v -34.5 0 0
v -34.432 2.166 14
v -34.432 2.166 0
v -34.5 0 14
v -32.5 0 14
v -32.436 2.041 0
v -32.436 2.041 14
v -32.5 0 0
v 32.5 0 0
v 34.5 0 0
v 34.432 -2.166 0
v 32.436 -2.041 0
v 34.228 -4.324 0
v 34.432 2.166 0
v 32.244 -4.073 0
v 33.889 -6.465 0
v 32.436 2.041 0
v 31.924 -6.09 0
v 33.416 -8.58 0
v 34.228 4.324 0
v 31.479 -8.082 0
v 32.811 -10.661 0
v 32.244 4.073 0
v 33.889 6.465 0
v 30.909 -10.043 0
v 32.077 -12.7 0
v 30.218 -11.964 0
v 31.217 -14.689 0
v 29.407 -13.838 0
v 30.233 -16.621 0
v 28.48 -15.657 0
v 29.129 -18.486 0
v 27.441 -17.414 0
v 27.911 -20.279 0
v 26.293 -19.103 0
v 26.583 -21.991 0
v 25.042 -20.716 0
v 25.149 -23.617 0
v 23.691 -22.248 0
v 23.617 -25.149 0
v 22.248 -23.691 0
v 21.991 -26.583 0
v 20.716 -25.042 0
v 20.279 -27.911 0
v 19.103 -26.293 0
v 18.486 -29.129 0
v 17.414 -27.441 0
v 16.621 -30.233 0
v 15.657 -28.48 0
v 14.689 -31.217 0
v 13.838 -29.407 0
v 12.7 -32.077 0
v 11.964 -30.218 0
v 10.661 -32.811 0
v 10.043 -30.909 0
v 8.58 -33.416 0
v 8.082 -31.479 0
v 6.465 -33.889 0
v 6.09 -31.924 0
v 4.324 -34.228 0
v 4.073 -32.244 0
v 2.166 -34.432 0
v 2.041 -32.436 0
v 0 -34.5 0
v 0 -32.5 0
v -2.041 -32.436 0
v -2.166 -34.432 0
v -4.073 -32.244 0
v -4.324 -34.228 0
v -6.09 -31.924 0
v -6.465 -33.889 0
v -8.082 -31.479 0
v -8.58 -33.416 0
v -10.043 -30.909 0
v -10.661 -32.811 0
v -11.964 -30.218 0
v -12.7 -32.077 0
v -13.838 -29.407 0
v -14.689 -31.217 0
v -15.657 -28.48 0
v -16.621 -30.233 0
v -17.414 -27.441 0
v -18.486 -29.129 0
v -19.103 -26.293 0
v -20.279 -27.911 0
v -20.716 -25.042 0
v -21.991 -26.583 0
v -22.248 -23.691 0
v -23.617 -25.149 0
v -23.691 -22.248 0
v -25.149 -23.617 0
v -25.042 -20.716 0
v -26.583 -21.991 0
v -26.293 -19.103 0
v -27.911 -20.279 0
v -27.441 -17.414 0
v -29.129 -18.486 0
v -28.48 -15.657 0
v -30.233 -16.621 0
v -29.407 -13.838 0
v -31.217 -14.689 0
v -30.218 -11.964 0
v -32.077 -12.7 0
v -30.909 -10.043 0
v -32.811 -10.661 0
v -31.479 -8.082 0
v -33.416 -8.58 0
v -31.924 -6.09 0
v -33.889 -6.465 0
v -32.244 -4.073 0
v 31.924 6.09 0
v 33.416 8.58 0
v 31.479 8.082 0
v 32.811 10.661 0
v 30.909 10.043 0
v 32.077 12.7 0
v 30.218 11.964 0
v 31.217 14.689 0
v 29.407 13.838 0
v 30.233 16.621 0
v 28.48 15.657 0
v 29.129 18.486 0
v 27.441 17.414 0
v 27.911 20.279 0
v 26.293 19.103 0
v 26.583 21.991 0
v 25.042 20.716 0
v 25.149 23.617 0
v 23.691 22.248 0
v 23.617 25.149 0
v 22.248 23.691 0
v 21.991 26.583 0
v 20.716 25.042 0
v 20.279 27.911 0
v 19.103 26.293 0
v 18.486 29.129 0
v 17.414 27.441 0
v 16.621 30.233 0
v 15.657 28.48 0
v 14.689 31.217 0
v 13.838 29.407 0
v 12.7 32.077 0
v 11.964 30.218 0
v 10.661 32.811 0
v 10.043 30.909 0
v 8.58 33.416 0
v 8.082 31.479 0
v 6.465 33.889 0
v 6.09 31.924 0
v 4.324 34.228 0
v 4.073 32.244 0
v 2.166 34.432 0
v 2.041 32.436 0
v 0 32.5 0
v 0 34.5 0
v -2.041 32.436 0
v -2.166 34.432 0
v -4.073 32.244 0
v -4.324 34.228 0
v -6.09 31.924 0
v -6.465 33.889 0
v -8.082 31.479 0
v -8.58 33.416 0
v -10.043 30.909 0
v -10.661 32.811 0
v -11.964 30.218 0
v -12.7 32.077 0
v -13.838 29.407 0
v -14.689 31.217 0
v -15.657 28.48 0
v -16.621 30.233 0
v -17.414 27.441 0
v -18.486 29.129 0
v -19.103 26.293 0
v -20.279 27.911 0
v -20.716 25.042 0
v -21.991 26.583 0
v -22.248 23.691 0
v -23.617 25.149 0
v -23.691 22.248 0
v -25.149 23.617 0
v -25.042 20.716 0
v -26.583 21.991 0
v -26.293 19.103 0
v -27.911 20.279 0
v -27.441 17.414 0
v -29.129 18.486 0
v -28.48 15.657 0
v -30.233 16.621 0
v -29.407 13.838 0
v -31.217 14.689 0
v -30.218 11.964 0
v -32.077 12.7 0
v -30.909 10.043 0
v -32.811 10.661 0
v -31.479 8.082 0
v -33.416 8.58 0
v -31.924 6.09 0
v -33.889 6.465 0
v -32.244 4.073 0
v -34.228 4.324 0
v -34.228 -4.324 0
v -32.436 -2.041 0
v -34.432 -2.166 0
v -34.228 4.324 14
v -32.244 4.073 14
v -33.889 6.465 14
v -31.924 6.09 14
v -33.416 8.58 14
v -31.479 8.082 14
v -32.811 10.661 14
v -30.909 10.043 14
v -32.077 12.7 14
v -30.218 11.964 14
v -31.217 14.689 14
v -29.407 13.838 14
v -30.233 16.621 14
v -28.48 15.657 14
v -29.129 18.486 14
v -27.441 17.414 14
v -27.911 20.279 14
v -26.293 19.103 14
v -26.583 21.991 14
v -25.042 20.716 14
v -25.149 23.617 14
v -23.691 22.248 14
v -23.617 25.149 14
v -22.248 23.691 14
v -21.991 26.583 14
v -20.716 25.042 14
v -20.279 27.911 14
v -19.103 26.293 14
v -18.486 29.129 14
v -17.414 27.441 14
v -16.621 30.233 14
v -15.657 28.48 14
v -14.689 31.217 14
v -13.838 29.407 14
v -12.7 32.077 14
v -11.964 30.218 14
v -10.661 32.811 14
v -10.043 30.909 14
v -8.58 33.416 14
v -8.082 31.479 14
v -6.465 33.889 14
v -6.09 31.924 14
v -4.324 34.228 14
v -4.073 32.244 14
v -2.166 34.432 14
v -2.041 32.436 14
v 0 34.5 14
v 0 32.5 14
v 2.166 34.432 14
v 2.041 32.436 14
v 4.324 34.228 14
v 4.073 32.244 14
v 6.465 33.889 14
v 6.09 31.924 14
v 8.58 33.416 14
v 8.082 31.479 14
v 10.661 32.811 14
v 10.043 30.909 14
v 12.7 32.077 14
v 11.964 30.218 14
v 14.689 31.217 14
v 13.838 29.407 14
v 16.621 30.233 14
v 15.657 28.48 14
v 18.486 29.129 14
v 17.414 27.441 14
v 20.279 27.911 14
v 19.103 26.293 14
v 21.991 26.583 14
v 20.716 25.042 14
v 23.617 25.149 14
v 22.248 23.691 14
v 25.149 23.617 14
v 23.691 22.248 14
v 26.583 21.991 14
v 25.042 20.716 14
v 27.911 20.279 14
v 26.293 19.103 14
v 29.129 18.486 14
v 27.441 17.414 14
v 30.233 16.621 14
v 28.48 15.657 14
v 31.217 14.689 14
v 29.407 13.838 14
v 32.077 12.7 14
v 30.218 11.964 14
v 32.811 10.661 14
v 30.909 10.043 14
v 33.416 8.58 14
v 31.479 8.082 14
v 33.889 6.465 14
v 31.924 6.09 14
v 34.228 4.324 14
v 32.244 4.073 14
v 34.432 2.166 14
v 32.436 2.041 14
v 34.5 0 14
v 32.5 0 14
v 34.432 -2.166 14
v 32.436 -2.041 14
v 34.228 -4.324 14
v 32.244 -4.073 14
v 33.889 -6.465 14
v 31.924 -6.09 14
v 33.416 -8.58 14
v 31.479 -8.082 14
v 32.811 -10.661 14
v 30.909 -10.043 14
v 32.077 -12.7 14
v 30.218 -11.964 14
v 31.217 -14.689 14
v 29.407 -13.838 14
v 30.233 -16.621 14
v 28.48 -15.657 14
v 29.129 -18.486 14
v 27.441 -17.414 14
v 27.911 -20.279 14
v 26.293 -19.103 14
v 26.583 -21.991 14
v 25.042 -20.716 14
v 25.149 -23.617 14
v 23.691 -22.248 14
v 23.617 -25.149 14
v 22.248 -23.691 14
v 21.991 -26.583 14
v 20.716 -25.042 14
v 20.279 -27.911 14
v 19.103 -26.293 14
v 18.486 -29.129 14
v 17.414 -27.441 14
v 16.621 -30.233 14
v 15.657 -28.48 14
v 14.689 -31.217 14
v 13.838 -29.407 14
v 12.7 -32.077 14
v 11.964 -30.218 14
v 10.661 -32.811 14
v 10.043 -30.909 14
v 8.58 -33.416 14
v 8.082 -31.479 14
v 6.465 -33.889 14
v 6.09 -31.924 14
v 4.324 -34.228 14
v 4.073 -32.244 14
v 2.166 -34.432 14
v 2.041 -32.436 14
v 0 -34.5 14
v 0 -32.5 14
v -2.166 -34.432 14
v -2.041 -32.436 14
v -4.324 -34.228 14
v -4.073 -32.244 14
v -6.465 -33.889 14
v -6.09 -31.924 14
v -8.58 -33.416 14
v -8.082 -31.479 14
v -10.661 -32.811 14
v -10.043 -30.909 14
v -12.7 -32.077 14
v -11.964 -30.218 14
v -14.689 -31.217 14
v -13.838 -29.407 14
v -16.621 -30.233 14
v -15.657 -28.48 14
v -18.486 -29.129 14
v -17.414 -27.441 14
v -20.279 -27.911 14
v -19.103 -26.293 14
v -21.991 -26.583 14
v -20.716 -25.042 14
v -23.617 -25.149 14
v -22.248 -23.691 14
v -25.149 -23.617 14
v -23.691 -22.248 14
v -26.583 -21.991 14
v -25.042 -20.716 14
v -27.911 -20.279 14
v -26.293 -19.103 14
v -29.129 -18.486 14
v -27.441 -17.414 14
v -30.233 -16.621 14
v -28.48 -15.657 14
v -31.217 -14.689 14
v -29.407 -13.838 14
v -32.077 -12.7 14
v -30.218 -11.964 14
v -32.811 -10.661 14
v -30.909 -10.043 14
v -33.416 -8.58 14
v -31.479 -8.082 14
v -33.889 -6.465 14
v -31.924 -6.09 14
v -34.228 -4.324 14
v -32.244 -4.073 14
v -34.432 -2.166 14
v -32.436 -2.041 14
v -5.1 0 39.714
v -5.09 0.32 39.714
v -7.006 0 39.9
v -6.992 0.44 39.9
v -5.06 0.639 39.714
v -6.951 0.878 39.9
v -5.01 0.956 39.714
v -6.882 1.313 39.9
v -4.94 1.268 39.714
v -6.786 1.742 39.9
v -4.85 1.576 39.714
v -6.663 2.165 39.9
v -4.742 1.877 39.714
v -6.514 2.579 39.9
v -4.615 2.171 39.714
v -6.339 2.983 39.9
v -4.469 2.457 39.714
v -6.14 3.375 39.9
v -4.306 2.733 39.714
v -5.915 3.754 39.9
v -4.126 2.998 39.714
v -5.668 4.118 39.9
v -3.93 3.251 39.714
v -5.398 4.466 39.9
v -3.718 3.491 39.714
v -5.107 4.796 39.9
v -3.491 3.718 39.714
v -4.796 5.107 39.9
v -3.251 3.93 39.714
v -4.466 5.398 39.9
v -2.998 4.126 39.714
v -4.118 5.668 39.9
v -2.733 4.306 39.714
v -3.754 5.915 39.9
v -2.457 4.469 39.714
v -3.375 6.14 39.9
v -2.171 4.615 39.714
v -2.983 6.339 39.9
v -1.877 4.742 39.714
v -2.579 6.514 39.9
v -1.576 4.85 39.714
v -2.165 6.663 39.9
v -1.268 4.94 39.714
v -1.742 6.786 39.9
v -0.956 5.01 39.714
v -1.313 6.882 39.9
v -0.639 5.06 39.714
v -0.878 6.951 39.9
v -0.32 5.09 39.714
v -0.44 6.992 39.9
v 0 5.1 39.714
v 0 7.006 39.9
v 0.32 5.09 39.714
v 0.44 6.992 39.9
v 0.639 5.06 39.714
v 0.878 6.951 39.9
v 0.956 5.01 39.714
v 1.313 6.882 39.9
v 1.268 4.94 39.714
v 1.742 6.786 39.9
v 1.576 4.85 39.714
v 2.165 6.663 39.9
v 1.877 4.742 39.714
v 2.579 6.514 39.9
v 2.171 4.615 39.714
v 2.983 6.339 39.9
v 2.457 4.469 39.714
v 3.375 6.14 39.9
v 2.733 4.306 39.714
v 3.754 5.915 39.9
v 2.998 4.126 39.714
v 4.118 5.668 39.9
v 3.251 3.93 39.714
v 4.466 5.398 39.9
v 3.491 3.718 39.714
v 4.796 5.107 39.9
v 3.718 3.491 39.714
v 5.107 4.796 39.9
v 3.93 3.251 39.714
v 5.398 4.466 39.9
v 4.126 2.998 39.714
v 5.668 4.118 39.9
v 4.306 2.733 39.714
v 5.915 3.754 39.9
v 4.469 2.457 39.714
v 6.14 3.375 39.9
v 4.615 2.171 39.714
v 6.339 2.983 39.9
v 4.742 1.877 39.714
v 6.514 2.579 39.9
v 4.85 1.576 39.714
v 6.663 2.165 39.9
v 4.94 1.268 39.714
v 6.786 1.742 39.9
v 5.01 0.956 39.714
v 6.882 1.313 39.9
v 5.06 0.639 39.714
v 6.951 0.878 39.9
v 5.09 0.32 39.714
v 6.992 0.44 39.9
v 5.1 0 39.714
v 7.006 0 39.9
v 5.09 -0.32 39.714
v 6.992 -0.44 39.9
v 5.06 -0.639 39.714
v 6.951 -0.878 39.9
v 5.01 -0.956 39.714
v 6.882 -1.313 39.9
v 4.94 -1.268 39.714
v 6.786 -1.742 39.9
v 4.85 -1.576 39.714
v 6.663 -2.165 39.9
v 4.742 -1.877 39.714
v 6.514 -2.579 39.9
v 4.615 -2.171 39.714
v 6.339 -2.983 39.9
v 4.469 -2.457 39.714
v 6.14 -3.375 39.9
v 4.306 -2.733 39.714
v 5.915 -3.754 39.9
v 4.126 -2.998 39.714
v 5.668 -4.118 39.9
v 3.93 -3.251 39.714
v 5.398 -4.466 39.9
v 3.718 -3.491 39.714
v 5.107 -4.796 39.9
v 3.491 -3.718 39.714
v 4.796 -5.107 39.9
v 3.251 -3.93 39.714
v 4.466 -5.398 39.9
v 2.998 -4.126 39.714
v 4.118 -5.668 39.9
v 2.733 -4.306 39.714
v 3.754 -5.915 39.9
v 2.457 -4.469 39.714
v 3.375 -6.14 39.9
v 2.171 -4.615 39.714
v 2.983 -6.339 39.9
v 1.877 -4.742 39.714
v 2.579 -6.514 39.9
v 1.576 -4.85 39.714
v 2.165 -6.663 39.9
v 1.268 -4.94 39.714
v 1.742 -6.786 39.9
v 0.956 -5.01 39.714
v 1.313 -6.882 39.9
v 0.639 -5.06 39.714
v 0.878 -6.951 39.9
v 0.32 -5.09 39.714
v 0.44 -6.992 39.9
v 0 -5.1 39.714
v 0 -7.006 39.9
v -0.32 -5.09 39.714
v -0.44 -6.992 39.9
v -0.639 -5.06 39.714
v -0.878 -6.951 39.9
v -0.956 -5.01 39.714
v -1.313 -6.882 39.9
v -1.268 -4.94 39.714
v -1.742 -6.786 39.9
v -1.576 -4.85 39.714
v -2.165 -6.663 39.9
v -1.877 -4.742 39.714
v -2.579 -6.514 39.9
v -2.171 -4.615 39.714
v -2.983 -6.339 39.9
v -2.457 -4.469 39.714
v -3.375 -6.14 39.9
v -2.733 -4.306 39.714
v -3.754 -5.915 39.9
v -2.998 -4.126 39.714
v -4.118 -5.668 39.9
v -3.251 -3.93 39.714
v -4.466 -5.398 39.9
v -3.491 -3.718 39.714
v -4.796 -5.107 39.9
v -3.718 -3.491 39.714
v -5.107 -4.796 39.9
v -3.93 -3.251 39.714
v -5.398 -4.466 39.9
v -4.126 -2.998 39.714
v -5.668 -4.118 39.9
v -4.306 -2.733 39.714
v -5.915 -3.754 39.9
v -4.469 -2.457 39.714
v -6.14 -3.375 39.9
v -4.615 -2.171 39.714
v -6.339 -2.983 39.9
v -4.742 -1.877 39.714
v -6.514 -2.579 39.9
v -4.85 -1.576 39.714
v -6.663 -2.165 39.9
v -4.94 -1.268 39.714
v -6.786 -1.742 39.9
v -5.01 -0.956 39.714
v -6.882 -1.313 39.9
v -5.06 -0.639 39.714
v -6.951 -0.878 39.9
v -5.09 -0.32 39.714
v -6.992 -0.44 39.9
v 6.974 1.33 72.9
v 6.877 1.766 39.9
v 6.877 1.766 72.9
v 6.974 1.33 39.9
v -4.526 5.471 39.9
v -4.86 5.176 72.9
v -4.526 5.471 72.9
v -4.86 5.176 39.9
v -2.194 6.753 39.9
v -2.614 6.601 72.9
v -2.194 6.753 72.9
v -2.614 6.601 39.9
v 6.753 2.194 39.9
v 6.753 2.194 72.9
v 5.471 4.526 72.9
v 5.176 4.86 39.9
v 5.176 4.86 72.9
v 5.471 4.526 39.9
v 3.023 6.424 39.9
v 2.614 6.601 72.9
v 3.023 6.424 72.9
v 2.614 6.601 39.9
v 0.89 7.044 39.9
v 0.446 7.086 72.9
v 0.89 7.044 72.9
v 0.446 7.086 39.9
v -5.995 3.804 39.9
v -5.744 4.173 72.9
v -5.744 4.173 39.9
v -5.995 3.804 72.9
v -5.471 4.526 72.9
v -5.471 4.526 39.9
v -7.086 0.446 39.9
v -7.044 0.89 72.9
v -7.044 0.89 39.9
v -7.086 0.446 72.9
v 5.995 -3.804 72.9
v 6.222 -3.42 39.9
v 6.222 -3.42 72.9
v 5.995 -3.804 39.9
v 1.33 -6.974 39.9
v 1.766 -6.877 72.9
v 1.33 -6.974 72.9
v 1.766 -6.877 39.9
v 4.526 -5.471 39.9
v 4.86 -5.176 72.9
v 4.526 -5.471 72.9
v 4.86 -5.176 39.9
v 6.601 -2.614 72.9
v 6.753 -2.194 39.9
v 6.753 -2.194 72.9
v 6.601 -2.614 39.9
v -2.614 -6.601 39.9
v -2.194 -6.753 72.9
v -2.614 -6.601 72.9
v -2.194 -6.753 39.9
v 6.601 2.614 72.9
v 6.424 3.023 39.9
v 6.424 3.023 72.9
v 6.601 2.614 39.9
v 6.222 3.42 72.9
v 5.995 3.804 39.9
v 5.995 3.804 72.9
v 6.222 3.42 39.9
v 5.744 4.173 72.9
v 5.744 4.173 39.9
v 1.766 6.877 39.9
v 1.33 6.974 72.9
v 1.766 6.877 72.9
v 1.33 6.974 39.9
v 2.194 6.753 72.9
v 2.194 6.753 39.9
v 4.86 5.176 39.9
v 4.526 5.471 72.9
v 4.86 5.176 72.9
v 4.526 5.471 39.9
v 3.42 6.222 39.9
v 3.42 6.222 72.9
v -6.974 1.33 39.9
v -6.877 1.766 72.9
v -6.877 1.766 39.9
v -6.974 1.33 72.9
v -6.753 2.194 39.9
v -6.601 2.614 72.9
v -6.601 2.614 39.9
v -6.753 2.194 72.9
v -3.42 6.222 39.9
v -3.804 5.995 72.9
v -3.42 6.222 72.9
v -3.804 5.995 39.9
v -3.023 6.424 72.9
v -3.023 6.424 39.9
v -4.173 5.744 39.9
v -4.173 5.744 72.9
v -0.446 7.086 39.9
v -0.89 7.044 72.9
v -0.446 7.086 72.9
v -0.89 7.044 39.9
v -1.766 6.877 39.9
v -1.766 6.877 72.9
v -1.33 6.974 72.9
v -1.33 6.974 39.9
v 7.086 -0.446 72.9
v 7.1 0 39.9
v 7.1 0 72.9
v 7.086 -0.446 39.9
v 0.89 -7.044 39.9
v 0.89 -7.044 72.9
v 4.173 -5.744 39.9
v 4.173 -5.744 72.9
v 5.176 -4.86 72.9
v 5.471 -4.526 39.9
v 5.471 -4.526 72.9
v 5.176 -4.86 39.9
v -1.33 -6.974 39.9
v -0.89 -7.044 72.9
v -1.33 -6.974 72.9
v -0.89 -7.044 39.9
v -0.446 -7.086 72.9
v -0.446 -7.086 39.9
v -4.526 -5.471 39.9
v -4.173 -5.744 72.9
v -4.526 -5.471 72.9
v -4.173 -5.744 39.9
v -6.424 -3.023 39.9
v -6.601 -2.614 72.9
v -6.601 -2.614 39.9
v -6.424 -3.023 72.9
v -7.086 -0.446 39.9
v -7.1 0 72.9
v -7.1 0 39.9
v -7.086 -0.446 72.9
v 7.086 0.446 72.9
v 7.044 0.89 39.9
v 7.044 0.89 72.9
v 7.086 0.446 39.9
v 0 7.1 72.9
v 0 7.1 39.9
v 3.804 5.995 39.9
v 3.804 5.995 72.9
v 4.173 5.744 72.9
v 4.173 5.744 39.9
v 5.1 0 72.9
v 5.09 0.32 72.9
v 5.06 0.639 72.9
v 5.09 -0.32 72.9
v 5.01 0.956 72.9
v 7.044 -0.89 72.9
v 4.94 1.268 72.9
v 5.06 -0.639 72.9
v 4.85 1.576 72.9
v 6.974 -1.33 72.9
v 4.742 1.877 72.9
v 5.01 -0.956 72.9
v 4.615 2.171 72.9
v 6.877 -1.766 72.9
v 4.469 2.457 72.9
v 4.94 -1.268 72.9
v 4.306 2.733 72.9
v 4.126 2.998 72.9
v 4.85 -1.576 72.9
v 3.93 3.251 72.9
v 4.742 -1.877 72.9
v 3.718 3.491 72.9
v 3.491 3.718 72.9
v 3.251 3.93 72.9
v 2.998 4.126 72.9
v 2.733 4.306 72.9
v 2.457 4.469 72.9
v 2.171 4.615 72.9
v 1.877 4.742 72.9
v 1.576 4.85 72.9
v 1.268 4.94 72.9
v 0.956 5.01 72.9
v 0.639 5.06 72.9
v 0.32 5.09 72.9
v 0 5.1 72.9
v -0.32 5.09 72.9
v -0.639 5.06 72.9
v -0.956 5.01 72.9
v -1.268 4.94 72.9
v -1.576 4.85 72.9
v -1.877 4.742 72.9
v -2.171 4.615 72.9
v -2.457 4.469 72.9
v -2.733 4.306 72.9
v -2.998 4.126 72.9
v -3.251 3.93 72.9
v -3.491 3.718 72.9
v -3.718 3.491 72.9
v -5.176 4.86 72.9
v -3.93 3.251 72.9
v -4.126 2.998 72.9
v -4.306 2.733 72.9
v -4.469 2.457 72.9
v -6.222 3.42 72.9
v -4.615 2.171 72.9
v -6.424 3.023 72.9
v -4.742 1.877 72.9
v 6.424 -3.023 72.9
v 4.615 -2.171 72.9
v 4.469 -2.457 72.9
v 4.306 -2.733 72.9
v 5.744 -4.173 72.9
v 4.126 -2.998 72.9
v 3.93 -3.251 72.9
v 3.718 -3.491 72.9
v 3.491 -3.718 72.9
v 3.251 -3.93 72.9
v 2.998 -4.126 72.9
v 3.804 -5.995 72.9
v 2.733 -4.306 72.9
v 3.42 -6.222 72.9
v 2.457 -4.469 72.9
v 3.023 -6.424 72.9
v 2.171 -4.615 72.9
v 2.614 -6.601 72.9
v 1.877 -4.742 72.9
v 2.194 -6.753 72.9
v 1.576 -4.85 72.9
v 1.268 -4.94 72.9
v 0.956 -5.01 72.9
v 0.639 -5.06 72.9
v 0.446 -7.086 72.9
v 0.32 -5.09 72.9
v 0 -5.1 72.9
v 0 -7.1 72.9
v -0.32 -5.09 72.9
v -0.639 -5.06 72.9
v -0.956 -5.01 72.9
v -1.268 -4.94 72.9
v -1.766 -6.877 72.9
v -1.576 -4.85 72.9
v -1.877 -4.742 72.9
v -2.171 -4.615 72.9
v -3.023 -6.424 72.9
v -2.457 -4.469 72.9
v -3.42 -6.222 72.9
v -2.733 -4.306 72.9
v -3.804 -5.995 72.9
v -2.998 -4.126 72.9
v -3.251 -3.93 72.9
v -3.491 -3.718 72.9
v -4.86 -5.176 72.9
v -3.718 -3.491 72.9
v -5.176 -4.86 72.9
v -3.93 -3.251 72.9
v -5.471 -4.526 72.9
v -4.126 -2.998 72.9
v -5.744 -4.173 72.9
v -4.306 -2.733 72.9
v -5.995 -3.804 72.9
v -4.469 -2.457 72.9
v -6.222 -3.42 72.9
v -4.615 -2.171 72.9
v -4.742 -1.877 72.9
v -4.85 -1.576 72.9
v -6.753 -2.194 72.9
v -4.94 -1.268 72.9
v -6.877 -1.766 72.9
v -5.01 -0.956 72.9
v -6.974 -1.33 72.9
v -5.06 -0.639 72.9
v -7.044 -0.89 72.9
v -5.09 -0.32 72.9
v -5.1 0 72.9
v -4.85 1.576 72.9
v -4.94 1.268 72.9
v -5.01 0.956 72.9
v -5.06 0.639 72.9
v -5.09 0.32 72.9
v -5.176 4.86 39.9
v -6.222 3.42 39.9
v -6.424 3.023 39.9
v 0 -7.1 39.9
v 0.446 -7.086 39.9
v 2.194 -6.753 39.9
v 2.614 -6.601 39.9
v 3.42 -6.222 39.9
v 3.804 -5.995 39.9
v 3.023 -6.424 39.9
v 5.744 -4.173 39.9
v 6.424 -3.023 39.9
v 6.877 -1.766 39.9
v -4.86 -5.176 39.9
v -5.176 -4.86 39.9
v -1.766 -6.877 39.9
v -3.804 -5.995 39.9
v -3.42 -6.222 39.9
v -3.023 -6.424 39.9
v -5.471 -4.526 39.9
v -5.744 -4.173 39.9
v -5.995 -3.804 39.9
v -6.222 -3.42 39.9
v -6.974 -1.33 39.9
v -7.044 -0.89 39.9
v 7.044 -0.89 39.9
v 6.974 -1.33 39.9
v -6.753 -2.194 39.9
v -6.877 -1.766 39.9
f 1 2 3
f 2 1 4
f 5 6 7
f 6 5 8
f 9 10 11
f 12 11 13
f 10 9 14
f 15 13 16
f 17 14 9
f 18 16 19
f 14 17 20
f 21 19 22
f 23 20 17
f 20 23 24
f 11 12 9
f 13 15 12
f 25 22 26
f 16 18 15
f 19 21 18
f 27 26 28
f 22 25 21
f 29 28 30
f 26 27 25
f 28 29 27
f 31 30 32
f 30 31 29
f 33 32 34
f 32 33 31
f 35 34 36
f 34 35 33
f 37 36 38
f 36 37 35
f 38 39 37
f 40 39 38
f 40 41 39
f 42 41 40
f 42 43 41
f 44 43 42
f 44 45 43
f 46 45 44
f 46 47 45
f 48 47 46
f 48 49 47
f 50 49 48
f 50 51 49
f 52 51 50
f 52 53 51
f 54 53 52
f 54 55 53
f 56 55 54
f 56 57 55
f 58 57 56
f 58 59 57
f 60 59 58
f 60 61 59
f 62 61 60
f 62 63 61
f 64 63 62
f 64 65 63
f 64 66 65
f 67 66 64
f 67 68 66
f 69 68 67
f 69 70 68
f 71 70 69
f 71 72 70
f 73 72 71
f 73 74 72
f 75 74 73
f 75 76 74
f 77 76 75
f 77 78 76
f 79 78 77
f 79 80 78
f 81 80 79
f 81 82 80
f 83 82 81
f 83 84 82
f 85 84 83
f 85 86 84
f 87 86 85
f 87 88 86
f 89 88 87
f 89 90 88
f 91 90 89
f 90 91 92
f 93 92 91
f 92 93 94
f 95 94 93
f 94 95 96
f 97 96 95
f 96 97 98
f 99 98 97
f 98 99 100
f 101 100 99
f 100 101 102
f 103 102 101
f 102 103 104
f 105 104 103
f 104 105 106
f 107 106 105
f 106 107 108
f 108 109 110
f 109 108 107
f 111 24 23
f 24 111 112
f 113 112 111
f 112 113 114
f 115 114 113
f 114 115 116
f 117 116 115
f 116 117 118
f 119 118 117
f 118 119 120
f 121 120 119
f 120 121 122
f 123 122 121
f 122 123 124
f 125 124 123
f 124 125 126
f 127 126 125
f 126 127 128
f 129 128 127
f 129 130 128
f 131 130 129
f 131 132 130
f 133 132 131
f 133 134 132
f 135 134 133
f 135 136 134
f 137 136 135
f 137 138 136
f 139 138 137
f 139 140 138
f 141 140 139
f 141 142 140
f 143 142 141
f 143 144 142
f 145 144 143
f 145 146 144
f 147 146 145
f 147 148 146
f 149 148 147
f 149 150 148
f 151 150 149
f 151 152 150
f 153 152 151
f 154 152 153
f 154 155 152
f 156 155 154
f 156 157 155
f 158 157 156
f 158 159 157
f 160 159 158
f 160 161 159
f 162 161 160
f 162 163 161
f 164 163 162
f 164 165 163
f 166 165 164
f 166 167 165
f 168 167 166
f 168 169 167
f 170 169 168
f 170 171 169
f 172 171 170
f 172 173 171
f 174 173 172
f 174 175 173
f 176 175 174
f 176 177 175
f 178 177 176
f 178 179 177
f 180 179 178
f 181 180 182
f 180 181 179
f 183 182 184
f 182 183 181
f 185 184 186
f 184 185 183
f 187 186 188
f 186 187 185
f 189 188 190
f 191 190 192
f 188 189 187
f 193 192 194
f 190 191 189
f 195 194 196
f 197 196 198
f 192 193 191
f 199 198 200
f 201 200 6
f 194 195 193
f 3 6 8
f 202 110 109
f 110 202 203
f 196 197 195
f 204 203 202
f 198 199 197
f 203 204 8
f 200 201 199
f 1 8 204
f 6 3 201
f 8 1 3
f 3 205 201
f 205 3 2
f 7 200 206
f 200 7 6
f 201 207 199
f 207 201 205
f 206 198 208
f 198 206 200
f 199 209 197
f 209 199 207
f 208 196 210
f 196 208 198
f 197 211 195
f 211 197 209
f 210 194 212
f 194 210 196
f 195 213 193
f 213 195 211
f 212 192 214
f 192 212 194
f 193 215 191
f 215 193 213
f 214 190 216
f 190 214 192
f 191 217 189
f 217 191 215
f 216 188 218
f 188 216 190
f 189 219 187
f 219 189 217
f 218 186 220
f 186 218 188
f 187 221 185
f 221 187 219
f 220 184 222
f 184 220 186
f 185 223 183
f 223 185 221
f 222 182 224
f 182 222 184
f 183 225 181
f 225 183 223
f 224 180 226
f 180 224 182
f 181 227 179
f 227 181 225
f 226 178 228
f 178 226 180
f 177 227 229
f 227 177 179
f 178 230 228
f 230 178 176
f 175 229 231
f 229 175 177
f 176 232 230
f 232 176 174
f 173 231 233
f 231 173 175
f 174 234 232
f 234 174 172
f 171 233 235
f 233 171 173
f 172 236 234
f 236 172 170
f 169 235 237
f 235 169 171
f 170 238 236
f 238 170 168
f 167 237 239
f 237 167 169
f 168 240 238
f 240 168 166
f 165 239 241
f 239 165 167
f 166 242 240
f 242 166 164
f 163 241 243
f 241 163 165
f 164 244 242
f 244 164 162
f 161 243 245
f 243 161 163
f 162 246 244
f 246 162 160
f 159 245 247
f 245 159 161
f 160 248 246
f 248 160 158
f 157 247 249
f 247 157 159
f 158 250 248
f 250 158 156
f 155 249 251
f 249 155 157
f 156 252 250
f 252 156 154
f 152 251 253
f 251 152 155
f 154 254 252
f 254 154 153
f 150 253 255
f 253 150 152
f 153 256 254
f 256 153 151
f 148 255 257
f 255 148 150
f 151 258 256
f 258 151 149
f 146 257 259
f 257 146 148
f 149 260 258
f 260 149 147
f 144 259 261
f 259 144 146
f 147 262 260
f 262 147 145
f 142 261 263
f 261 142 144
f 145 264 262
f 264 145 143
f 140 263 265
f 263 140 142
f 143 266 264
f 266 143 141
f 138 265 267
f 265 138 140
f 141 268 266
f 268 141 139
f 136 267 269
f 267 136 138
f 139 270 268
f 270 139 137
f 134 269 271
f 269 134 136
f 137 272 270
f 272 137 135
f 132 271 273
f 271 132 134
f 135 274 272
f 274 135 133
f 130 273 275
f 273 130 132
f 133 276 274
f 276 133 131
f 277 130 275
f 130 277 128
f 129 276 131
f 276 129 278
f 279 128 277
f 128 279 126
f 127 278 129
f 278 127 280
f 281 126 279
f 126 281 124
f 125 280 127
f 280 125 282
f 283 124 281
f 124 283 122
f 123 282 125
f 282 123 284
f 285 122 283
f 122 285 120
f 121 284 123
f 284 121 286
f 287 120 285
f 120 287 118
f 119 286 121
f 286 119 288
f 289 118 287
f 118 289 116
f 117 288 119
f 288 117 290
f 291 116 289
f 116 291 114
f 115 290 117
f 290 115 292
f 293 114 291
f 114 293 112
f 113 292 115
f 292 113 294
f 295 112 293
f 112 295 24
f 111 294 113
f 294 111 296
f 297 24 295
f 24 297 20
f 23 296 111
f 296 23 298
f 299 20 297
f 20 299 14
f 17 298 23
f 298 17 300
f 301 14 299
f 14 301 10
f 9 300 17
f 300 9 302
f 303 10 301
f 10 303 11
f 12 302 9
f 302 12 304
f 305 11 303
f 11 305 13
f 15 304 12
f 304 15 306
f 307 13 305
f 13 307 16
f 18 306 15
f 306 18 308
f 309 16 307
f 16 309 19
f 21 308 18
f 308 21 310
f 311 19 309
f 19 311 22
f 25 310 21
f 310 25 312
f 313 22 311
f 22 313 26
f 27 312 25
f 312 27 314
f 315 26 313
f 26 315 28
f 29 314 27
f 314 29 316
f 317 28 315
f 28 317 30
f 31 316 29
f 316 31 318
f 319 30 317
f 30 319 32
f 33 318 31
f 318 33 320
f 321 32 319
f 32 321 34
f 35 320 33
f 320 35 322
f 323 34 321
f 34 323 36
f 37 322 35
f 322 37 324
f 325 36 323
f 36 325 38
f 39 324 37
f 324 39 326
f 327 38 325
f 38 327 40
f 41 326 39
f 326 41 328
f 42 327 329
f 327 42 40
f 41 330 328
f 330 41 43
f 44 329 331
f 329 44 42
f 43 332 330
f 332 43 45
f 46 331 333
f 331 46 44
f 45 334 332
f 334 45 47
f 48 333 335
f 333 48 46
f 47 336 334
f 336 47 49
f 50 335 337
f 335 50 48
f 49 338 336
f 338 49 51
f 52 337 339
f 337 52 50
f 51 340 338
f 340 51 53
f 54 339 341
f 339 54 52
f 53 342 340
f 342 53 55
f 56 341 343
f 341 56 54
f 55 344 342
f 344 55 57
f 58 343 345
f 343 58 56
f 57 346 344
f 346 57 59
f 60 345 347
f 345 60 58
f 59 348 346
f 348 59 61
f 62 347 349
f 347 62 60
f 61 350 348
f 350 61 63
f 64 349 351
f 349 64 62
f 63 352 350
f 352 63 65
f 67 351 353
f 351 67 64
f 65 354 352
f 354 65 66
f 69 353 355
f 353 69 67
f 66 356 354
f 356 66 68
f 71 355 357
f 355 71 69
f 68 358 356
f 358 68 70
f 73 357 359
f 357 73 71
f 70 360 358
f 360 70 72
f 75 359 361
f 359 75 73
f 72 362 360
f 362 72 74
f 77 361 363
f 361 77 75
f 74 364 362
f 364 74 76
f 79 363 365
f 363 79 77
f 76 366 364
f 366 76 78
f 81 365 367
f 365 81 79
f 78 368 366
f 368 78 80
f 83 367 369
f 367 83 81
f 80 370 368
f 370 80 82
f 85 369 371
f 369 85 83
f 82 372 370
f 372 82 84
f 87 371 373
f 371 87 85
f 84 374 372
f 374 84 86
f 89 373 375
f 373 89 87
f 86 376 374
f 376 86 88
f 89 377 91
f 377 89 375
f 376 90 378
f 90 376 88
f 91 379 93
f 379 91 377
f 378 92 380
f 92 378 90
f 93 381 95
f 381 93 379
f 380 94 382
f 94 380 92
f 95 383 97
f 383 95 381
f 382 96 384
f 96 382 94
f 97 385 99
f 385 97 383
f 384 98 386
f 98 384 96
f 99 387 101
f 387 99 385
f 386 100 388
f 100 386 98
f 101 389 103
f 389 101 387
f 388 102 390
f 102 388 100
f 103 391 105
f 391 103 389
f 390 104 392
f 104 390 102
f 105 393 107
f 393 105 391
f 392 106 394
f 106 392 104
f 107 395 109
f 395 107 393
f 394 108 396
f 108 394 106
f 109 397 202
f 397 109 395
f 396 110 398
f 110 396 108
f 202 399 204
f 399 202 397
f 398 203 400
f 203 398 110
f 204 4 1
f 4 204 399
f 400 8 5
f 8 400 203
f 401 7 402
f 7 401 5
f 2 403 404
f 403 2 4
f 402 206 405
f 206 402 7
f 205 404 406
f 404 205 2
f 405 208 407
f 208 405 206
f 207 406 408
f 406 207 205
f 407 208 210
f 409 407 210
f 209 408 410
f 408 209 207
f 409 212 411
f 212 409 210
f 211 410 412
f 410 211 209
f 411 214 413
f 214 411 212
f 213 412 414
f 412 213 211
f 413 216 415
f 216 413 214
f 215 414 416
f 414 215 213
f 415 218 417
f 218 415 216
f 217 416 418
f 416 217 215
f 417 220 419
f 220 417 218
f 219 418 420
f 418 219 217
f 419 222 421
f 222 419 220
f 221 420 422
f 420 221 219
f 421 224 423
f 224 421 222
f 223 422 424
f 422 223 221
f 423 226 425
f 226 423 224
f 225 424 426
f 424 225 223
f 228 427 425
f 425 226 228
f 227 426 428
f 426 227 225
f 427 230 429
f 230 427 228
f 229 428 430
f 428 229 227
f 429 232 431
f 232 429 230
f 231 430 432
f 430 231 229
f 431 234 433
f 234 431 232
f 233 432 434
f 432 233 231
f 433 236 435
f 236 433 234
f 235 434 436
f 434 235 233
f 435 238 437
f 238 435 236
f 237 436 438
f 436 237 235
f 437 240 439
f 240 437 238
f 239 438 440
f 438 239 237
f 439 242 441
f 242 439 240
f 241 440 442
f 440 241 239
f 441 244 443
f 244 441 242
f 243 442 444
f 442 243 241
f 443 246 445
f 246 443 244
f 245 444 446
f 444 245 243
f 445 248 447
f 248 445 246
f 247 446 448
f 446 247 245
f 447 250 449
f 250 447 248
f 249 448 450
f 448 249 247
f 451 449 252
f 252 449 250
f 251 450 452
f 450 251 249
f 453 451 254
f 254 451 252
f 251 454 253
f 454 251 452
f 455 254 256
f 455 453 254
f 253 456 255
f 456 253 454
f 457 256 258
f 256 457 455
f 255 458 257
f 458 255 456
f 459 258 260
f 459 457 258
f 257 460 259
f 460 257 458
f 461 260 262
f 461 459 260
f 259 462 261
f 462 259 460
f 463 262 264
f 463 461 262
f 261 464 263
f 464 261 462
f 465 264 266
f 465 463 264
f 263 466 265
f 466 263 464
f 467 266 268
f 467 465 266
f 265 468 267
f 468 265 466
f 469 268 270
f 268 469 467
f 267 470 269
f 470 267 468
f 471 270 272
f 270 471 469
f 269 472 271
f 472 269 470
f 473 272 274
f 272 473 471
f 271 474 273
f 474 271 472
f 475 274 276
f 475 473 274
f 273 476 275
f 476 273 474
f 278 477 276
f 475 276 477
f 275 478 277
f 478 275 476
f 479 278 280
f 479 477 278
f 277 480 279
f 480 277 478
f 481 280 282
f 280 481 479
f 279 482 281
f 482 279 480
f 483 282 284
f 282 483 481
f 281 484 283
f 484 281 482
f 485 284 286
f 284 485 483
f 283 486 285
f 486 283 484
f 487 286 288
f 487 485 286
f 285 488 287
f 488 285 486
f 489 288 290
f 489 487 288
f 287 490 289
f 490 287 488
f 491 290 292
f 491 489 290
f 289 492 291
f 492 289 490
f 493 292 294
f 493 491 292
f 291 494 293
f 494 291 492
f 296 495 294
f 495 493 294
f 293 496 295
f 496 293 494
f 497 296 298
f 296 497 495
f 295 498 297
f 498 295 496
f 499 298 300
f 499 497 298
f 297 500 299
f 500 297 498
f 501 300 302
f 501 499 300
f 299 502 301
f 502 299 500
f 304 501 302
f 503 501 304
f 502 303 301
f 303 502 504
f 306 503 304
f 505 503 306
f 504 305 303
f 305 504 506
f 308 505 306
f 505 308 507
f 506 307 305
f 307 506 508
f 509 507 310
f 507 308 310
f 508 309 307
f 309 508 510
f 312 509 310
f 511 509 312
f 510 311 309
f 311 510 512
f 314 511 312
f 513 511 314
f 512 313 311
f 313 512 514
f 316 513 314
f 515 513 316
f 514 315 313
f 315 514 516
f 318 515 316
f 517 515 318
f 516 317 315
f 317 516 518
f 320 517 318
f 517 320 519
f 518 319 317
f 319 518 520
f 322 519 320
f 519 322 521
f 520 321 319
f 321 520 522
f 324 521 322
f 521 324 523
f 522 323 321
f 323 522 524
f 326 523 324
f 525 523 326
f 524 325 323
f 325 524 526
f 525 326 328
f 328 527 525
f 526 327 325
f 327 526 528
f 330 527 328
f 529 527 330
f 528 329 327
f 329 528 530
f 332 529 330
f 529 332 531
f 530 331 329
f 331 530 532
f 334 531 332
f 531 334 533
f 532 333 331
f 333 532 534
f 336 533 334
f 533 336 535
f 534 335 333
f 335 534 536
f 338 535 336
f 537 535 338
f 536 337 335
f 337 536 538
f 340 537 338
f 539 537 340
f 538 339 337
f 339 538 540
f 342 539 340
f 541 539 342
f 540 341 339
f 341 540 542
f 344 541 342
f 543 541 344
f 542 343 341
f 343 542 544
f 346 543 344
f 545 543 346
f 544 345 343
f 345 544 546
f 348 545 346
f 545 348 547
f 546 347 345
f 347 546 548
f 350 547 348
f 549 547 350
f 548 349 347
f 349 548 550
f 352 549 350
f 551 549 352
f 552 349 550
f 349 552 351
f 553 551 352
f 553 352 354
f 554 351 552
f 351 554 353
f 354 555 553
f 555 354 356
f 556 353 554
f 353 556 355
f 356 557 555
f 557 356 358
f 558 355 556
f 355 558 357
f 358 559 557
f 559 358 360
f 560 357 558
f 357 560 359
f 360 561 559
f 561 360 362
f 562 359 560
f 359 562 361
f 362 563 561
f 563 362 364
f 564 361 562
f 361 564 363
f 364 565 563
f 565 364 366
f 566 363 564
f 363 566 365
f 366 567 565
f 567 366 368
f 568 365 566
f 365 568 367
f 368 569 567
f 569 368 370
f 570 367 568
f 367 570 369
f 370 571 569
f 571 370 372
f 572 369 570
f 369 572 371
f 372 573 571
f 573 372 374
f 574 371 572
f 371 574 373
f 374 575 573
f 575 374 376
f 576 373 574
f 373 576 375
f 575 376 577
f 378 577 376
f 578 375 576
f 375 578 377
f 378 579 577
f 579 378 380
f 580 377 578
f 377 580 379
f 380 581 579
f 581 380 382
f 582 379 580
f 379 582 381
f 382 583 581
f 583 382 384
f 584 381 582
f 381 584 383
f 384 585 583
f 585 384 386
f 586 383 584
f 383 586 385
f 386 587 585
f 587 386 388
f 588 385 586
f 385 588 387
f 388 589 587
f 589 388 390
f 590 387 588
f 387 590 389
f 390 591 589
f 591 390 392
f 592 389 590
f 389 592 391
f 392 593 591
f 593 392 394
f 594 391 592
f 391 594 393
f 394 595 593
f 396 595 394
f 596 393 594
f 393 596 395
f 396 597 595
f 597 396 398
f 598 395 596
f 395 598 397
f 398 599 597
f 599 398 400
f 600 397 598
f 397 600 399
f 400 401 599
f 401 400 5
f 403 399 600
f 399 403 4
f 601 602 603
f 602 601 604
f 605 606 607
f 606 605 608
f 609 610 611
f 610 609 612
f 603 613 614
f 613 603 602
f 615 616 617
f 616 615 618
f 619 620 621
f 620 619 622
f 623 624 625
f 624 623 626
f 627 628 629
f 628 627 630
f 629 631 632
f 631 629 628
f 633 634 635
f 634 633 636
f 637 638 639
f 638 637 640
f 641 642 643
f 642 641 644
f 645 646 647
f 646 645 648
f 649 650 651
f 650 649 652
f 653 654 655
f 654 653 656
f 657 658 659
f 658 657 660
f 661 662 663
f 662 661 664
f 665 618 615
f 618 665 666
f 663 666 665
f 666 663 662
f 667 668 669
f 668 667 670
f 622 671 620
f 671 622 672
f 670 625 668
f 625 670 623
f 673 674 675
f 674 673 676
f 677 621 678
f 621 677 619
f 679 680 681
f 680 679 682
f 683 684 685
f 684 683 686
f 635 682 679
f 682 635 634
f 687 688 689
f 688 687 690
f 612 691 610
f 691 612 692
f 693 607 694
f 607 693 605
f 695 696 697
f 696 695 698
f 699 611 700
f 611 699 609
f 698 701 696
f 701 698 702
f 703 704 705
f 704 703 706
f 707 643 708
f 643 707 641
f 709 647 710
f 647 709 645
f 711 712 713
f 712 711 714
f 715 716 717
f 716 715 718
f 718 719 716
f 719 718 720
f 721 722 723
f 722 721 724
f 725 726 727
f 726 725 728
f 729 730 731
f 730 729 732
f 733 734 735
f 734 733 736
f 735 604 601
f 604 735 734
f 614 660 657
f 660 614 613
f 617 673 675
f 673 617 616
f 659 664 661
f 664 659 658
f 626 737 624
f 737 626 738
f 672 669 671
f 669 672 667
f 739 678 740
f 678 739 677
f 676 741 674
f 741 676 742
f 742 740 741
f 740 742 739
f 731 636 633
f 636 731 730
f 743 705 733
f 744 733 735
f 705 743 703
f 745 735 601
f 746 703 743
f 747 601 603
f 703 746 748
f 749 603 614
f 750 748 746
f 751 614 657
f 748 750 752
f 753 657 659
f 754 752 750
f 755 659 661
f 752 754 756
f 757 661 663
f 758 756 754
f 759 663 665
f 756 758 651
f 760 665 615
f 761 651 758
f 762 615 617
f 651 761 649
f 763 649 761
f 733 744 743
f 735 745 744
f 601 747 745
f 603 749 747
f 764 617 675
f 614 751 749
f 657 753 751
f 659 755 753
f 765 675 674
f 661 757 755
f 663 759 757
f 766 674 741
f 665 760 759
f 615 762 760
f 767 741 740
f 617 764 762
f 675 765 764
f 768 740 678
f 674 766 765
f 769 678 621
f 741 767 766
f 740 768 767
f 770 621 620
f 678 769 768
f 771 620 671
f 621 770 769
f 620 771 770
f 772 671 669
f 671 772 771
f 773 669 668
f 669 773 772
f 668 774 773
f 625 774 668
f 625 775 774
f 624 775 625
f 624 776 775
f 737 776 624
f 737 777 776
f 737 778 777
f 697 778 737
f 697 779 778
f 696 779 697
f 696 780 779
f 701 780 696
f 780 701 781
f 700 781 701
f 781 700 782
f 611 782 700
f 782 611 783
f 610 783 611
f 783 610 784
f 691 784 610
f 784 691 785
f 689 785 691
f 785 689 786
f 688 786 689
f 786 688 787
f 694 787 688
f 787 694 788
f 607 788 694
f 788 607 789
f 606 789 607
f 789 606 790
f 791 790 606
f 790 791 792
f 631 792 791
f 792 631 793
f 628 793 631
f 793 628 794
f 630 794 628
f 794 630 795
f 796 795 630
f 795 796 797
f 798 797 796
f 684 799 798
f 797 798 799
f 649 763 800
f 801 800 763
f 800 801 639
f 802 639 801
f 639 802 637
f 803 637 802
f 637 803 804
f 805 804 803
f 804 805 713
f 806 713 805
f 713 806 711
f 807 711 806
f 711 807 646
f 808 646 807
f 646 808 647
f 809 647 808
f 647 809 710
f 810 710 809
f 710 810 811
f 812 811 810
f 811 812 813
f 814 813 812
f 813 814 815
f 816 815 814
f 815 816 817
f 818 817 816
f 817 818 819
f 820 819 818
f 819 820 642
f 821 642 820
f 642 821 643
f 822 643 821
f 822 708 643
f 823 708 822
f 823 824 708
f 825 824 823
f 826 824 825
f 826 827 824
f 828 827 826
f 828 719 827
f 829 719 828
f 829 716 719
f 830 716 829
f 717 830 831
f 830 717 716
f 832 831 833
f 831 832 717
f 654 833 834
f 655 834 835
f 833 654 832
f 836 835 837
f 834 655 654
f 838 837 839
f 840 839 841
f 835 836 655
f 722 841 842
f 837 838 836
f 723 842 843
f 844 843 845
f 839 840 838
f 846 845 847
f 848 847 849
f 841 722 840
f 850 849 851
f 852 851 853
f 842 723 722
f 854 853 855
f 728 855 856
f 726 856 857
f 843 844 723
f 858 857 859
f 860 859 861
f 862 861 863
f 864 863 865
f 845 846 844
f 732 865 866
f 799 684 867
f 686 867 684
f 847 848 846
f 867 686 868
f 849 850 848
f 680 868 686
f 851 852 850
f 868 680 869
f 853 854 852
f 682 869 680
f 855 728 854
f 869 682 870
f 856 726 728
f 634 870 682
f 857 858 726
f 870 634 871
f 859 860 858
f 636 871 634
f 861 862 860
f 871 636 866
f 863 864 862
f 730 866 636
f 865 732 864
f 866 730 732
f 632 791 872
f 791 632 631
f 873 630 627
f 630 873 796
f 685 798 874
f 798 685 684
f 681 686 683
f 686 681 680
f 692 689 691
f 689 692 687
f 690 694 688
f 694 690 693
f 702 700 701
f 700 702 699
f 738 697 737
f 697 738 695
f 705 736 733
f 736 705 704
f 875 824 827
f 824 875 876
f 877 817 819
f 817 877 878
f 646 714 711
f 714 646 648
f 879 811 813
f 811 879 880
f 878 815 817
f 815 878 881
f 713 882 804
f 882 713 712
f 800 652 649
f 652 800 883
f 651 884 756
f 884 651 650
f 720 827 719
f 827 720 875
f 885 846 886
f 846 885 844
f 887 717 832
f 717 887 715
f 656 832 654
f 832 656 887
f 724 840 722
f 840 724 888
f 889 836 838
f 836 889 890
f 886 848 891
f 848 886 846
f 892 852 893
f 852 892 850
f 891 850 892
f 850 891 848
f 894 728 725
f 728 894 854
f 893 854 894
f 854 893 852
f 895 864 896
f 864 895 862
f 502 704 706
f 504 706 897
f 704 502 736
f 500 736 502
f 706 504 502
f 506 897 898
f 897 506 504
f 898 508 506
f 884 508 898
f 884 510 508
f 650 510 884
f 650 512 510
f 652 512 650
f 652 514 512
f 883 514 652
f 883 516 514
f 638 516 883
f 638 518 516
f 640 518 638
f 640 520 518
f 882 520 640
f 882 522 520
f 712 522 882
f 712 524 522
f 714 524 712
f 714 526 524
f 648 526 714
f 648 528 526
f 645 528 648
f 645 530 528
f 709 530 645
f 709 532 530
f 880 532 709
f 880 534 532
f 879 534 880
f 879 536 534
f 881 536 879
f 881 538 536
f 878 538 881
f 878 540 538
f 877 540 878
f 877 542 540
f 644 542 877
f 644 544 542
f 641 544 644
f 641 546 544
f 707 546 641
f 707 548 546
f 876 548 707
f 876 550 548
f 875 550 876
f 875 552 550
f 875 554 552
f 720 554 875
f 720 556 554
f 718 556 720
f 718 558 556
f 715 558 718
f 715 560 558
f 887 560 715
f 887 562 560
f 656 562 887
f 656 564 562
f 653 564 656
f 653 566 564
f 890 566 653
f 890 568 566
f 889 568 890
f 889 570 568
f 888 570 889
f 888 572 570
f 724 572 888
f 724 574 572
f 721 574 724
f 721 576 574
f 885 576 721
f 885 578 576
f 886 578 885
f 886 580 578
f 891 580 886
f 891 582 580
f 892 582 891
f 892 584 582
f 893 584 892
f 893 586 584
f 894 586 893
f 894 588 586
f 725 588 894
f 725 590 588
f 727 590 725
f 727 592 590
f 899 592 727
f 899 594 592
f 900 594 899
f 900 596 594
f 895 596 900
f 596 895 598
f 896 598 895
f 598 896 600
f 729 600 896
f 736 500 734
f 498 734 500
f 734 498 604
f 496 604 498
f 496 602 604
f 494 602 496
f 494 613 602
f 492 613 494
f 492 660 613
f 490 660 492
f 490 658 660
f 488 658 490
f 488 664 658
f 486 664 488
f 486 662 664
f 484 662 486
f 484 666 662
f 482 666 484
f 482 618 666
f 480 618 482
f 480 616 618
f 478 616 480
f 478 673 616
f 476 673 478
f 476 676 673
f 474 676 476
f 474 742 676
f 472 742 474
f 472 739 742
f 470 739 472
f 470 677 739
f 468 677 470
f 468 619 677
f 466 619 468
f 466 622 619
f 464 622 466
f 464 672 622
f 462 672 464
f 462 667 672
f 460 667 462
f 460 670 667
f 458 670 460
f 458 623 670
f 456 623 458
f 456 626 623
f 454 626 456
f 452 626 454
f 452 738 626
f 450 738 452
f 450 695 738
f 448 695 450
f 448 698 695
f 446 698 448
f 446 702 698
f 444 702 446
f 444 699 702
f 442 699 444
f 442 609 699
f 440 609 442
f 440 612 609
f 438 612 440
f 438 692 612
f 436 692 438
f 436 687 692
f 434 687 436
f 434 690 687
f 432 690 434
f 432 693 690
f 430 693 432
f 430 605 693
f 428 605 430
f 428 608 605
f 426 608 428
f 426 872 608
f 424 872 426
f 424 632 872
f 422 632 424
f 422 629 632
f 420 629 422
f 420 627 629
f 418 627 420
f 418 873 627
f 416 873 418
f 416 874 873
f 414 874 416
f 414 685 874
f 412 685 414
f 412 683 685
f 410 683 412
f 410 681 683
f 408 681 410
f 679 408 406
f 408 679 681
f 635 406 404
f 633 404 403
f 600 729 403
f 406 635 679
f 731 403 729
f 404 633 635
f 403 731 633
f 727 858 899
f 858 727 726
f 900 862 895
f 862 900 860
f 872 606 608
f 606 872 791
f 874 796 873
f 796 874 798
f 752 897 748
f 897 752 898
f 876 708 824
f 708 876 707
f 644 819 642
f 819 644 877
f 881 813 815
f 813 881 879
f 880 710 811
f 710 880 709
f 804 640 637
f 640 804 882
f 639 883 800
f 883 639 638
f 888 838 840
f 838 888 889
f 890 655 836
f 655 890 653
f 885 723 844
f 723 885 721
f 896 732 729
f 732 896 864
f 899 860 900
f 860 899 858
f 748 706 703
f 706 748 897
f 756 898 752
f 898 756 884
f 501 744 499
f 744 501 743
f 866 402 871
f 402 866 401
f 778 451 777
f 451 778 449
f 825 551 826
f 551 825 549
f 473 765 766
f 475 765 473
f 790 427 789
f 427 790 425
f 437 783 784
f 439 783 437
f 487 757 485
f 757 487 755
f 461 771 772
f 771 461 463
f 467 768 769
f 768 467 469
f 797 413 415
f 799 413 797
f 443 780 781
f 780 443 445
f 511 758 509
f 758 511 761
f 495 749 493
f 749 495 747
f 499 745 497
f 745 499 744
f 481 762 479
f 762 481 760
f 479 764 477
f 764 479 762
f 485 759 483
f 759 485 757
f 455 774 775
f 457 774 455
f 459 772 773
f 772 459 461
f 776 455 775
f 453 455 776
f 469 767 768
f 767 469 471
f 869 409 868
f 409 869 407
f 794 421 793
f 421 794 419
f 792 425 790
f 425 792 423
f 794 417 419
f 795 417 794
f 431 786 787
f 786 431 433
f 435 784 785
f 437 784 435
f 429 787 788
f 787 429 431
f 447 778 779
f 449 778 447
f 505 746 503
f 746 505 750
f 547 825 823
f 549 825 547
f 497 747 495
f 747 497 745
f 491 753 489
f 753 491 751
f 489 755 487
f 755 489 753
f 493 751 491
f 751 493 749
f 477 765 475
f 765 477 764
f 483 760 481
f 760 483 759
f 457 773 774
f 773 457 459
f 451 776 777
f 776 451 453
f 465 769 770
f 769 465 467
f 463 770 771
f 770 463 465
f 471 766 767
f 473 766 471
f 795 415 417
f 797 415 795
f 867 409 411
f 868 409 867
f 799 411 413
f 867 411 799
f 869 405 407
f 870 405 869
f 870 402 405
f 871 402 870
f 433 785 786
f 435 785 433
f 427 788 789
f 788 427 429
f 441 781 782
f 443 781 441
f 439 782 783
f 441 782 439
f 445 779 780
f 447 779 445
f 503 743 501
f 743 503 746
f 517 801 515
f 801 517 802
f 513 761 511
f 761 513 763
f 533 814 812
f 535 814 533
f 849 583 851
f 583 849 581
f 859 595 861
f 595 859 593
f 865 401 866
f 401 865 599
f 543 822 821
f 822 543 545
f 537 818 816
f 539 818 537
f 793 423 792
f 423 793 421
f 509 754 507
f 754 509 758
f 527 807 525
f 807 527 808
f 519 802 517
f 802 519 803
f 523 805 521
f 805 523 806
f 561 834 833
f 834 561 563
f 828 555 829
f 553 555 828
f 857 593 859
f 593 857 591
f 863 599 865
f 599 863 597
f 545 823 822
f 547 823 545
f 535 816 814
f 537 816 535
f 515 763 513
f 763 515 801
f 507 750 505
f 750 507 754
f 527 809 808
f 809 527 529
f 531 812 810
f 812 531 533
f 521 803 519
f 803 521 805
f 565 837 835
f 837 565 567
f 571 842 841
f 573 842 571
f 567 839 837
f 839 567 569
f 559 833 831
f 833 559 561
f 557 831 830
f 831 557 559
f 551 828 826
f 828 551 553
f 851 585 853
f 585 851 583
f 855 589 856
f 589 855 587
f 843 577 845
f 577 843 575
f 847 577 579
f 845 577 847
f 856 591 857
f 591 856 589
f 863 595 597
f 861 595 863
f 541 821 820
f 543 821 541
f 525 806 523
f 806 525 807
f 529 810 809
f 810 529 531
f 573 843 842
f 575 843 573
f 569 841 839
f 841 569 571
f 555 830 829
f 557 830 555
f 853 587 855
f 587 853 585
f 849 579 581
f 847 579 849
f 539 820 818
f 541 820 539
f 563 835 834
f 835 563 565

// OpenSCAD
 //cover for measuring fluorescence on soil surface
 //designing for Czech Polar Centre, CB
 //Jiri Liska, Trebon, 2022
 //print from black material, pctg or asa
 
 $fn=100;
 bottom_height=14;
 diameter_bottom=65;
 side_thickness=2;
 diameter_bottom_corr=diameter_bottom+side_thickness*2;
 bottom_side_thickness=side_thickness;
 deck_thickness=side_thickness;
 deck_angle=45;
 upper_cylinder_h=33;
 hole_diameter=10+0.2;
 upper_cylinder_precizing_z=0.5;
 p3y=tan(deck_angle)*(diameter_bottom/2); 
upper_cylinder_minus_value=tan(deck_angle)*((hole_diameter+deck_thickness)/2)+upper_cylinder_precizing_z;
 upper_cylinder_z_positioning=bottom_height+p3y-upper_cylinder_minus_value;  
 

module bottom_round(){
    rotate_extrude() 
    {#translate([diameter_bottom_corr/2,0,0]) rotate([0,0,90]) square([bottom_height,bottom_side_thickness]);}
}

module deck(){
    //ale deck udelat pres rotate extrusion triangle / hrany budou kolme
    rotate_extrude()
        {
           translate([diameter_bottom_corr/2,0,0]) rotate([0,0,180-deck_angle]) square([diameter_bottom_corr/2,bottom_side_thickness]);
        }
}

module deck1(){
    
    point1=[diameter_bottom/2,0];
    point2=[diameter_bottom_corr/2,0];
    point3=[0,p3y];
    point4=[0,p3y-deck_thickness];
    rotate_extrude(){
        polygon([point1,point2,point3,point4]);
    }
}

module upper_tube(){
difference(){
cylinder(h=upper_cylinder_h,d=(hole_diameter+deck_thickness*2));

}
}

//execute
difference(){
    union(){
        bottom_round();
        translate([0,0,bottom_height]) deck1();
        translate([0,0,upper_cylinder_z_positioning]) upper_tube();
    } //union end
    translate([0,0,-0.5]) cylinder(h=bottom_height+p3y+upper_cylinder_h+1,d=hole_diameter);
}
